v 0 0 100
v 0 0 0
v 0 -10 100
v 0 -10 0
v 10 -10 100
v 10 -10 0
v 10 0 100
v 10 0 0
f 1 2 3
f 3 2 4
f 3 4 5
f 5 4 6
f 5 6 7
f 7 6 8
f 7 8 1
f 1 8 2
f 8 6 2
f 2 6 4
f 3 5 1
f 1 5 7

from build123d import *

# Parameters (mm, degrees)
SKETCH1_W           = 10
SKETCH1_H           = 10
BOSS_EXTRUDE1_DEPTH = 205
SKETCH2_R           = 3.5
BOSS_EXTRUDE2_DEPTH = 8
SKETCH4_W           = 18.766575586
SKETCH4_H           = 10.499405733
CUT_EXTRUDE1_DEPTH  = 105


with BuildPart() as part:
    # Sketch1 → Boss-Extrude1 (new body)
    with BuildSketch(Plane.XY):
        with Locations((5, -5)):
            Rectangle(SKETCH1_W, SKETCH1_H)
    extrude(amount=BOSS_EXTRUDE1_DEPTH)

    # Sketch2 → Boss-Extrude2 (add)
    with BuildSketch(Plane(origin=(10, 0, 0), x_dir=(0, 0, -1), z_dir=(1, 0, 0))):
        with Locations((-200, -5.053950804)):
            Circle(SKETCH2_R)
    extrude(amount=BOSS_EXTRUDE2_DEPTH)

    # Sketch4 → Cut-Extrude1 (cut)
    with BuildSketch(Plane.XY.offset(205)):
        with Locations((9.383287793, -4.750297134)):
            Rectangle(SKETCH4_W, SKETCH4_H)
    extrude(amount=-CUT_EXTRUDE1_DEPTH, mode=Mode.SUBTRACT)


solid = part.part
